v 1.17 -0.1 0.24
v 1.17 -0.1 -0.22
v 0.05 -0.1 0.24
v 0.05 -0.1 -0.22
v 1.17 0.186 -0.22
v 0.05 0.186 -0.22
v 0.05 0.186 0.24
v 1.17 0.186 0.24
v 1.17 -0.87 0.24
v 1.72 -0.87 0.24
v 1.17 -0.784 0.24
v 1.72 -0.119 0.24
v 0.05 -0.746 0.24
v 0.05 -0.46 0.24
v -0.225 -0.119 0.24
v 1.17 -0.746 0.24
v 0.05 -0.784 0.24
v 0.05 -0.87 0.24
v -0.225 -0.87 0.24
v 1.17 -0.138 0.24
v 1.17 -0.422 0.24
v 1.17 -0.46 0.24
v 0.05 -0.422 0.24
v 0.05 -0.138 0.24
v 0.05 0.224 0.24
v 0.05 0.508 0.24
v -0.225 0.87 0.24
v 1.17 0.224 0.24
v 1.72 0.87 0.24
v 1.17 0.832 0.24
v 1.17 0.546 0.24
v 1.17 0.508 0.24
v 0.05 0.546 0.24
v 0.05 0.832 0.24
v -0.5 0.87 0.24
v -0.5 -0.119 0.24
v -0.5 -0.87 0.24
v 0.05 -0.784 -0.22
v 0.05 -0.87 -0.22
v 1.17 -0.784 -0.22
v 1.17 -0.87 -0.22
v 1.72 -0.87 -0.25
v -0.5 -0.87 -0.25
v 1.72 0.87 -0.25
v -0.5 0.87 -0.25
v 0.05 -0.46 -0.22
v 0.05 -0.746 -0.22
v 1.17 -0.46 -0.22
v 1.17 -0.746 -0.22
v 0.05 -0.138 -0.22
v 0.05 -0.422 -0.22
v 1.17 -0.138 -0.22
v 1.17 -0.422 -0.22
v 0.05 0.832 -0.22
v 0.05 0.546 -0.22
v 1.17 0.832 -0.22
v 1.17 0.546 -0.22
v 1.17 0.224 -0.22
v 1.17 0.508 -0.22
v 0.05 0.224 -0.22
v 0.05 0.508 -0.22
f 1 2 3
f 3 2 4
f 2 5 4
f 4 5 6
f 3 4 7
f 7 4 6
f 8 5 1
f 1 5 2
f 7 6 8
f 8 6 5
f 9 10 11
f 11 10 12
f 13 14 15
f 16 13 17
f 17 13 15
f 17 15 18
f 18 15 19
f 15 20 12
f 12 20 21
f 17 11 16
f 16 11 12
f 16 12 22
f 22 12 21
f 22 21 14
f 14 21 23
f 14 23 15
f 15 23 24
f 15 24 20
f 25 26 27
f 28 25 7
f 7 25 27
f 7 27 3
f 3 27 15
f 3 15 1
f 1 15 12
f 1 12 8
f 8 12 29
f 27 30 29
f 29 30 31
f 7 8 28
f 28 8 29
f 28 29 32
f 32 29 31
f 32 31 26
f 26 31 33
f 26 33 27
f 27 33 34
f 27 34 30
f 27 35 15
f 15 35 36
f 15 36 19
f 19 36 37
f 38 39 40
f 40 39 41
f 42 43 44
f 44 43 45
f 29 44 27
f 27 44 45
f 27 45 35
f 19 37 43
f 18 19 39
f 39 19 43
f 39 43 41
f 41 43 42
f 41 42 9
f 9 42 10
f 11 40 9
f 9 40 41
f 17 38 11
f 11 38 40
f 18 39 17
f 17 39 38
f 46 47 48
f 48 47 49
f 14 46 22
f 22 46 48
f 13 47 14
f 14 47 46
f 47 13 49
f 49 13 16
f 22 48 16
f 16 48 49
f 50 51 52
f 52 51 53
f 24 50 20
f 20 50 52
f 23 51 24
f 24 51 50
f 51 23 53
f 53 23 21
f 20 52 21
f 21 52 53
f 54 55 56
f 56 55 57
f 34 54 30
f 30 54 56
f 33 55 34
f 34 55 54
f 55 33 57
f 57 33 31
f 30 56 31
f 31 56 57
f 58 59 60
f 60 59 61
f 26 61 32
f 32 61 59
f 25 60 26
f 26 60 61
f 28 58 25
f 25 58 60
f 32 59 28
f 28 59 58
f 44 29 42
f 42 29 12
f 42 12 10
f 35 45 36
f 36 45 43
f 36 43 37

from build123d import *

# Parameters (mm, degrees)
SKETCH1_W           = 0.44
SKETCH1_H           = 1.74
BOSS_EXTRUDE1_DEPTH = 0.03
SKETCH2_W           = 0.44
SKETCH2_H           = 0.018
BOSS_EXTRUDE2_DEPTH = 1.16
SKETCH3_W           = 0.44
SKETCH3_H           = 1.74
BOSS_EXTRUDE3_DEPTH = 0.03
SKETCH4_W           = 1.22
SKETCH4_H           = 1.74
BOSS_EXTRUDE4_DEPTH = 0.03
THICK_IN_DEPTH      = 0.44
SKETCH6_W           = 1.12
SKETCH6_H           = 0.286
SKETCH6_H_2         = 0.284
BOSS_EXTRUDE5_DEPTH = 0.02
SKETCH7_W           = 0.49
SKETCH7_H           = 1.74
BOSS_EXTRUDE6_DEPTH = 0.5
SKETCH8_W           = 0.49
SKETCH8_H           = 1.74
BOSS_EXTRUDE7_DEPTH = 0.5


with BuildPart() as part:
    # Sketch1 → Boss-Extrude1 (new body)
    with BuildSketch(Plane(origin=(0, 0, 0), x_dir=(0, 0, -1), z_dir=(1, 0, 0))):
        Rectangle(SKETCH1_W, SKETCH1_H)
    extrude(amount=BOSS_EXTRUDE1_DEPTH)

    # Sketch2 → Boss-Extrude2 (add)
    with BuildSketch(Plane(origin=(0.03, 0, 0), x_dir=(0, 0, -1), z_dir=(1, 0, 0))):
        with Locations((0, -0.755)):
            Rectangle(SKETCH2_W, SKETCH2_H)
        with Locations((0, -0.431)):
            Rectangle(SKETCH2_W, SKETCH2_H)
        with Locations((0, -0.109)):
            Rectangle(SKETCH2_W, SKETCH2_H)
        with Locations((0, 0.215)):
            Rectangle(SKETCH2_W, SKETCH2_H)
        with Locations((0, 0.537)):
            Rectangle(SKETCH2_W, SKETCH2_H)
        with Locations((0, 0.861)):
            Rectangle(SKETCH2_W, SKETCH2_H)
    extrude(amount=BOSS_EXTRUDE2_DEPTH)

    # Sketch3 → Boss-Extrude3 (add)
    with BuildSketch(Plane(origin=(1.19, 0, 0), x_dir=(0, 0, -1), z_dir=(1, 0, 0))):
        Rectangle(SKETCH3_W, SKETCH3_H)
    extrude(amount=BOSS_EXTRUDE3_DEPTH)

    # Sketch4 → Boss-Extrude4 (add)
    with BuildSketch(Plane(origin=(0, 0, -0.22), x_dir=(-1, 0, 0), z_dir=(0, 0, -1))):
        with Locations((-0.61, 0)):
            Rectangle(SKETCH4_W, SKETCH4_H)
    extrude(amount=BOSS_EXTRUDE4_DEPTH)

    # Sketch5 → Thick in (add)
    with BuildSketch(Plane.XY.offset(-0.22)):
        Polygon((0.03, -0.87), (0.05, -0.87), (0.05, -0.784), (1.17, -0.784), (1.17, -0.87), (1.19, -0.87), (1.19, -0.764), (0.03, -0.764), align=None)
        Polygon((0.03, -0.746), (0.05, -0.746), (0.05, -0.726), (0.05, -0.46), (1.17, -0.46), (1.17, -0.726), (1.17, -0.746), (1.19, -0.746), (1.19, -0.44), (0.03, -0.44), align=None)
        Polygon((0.03, -0.422), (0.05, -0.422), (0.05, -0.402), (0.05, -0.138), (1.17, -0.138), (1.17, -0.402), (1.17, -0.422), (1.19, -0.422), (1.19, -0.118), (0.03, -0.118), align=None)
        Polygon((0.03, -0.1), (0.05, -0.1), (0.05, -0.08), (0.05, 0.186), (1.17, 0.186), (1.17, -0.08), (1.17, -0.1), (1.19, -0.1), (1.19, 0.206), (0.03, 0.206), align=None)
        Polygon((0.03, 0.224), (0.05, 0.224), (0.05, 0.244), (0.05, 0.508), (1.17, 0.508), (1.17, 0.244), (1.17, 0.224), (1.19, 0.224), (1.19, 0.528), (0.03, 0.528), align=None)
        Polygon((0.03, 0.546), (0.05, 0.546), (0.05, 0.566), (0.05, 0.832), (1.17, 0.832), (1.17, 0.566), (1.17, 0.546), (1.19, 0.546), (1.19, 0.852), (0.03, 0.852), align=None)
    extrude(amount=THICK_IN_DEPTH)

    # Sketch6 → Boss-Extrude5 (add)
    with BuildSketch(Plane.XY.offset(0.22)):
        Polygon((0, -0.87), (0.05, -0.87), (0.05, -0.784), (1.17, -0.784), (1.17, -0.87), (1.22, -0.87), (1.22, 0.87), (0, 0.87), align=None)
        with Locations((0.61, 0.689)):
            Rectangle(SKETCH6_W, SKETCH6_H, mode=Mode.SUBTRACT)
        with Locations((0.61, 0.366)):
            Rectangle(SKETCH6_W, SKETCH6_H_2, mode=Mode.SUBTRACT)
        with Locations((0.61, 0.043)):
            Rectangle(SKETCH6_W, SKETCH6_H, mode=Mode.SUBTRACT)
        with Locations((0.61, -0.28)):
            Rectangle(SKETCH6_W, SKETCH6_H_2, mode=Mode.SUBTRACT)
        with Locations((0.61, -0.603)):
            Rectangle(SKETCH6_W, SKETCH6_H, mode=Mode.SUBTRACT)
    extrude(amount=BOSS_EXTRUDE5_DEPTH)

    # Sketch7 → Boss-Extrude6 (add)
    with BuildSketch(Plane(origin=(1.22, 0, 0), x_dir=(0, 0, -1), z_dir=(1, 0, 0))):
        with Locations((0.005, 0)):
            Rectangle(SKETCH7_W, SKETCH7_H)
    extrude(amount=BOSS_EXTRUDE6_DEPTH)

    # Sketch8 → Boss-Extrude7 (add)
    with BuildSketch(Plane.ZY):
        with Locations((-0.005, 0)):
            Rectangle(SKETCH8_W, SKETCH8_H)
    extrude(amount=BOSS_EXTRUDE7_DEPTH)


solid = part.part
